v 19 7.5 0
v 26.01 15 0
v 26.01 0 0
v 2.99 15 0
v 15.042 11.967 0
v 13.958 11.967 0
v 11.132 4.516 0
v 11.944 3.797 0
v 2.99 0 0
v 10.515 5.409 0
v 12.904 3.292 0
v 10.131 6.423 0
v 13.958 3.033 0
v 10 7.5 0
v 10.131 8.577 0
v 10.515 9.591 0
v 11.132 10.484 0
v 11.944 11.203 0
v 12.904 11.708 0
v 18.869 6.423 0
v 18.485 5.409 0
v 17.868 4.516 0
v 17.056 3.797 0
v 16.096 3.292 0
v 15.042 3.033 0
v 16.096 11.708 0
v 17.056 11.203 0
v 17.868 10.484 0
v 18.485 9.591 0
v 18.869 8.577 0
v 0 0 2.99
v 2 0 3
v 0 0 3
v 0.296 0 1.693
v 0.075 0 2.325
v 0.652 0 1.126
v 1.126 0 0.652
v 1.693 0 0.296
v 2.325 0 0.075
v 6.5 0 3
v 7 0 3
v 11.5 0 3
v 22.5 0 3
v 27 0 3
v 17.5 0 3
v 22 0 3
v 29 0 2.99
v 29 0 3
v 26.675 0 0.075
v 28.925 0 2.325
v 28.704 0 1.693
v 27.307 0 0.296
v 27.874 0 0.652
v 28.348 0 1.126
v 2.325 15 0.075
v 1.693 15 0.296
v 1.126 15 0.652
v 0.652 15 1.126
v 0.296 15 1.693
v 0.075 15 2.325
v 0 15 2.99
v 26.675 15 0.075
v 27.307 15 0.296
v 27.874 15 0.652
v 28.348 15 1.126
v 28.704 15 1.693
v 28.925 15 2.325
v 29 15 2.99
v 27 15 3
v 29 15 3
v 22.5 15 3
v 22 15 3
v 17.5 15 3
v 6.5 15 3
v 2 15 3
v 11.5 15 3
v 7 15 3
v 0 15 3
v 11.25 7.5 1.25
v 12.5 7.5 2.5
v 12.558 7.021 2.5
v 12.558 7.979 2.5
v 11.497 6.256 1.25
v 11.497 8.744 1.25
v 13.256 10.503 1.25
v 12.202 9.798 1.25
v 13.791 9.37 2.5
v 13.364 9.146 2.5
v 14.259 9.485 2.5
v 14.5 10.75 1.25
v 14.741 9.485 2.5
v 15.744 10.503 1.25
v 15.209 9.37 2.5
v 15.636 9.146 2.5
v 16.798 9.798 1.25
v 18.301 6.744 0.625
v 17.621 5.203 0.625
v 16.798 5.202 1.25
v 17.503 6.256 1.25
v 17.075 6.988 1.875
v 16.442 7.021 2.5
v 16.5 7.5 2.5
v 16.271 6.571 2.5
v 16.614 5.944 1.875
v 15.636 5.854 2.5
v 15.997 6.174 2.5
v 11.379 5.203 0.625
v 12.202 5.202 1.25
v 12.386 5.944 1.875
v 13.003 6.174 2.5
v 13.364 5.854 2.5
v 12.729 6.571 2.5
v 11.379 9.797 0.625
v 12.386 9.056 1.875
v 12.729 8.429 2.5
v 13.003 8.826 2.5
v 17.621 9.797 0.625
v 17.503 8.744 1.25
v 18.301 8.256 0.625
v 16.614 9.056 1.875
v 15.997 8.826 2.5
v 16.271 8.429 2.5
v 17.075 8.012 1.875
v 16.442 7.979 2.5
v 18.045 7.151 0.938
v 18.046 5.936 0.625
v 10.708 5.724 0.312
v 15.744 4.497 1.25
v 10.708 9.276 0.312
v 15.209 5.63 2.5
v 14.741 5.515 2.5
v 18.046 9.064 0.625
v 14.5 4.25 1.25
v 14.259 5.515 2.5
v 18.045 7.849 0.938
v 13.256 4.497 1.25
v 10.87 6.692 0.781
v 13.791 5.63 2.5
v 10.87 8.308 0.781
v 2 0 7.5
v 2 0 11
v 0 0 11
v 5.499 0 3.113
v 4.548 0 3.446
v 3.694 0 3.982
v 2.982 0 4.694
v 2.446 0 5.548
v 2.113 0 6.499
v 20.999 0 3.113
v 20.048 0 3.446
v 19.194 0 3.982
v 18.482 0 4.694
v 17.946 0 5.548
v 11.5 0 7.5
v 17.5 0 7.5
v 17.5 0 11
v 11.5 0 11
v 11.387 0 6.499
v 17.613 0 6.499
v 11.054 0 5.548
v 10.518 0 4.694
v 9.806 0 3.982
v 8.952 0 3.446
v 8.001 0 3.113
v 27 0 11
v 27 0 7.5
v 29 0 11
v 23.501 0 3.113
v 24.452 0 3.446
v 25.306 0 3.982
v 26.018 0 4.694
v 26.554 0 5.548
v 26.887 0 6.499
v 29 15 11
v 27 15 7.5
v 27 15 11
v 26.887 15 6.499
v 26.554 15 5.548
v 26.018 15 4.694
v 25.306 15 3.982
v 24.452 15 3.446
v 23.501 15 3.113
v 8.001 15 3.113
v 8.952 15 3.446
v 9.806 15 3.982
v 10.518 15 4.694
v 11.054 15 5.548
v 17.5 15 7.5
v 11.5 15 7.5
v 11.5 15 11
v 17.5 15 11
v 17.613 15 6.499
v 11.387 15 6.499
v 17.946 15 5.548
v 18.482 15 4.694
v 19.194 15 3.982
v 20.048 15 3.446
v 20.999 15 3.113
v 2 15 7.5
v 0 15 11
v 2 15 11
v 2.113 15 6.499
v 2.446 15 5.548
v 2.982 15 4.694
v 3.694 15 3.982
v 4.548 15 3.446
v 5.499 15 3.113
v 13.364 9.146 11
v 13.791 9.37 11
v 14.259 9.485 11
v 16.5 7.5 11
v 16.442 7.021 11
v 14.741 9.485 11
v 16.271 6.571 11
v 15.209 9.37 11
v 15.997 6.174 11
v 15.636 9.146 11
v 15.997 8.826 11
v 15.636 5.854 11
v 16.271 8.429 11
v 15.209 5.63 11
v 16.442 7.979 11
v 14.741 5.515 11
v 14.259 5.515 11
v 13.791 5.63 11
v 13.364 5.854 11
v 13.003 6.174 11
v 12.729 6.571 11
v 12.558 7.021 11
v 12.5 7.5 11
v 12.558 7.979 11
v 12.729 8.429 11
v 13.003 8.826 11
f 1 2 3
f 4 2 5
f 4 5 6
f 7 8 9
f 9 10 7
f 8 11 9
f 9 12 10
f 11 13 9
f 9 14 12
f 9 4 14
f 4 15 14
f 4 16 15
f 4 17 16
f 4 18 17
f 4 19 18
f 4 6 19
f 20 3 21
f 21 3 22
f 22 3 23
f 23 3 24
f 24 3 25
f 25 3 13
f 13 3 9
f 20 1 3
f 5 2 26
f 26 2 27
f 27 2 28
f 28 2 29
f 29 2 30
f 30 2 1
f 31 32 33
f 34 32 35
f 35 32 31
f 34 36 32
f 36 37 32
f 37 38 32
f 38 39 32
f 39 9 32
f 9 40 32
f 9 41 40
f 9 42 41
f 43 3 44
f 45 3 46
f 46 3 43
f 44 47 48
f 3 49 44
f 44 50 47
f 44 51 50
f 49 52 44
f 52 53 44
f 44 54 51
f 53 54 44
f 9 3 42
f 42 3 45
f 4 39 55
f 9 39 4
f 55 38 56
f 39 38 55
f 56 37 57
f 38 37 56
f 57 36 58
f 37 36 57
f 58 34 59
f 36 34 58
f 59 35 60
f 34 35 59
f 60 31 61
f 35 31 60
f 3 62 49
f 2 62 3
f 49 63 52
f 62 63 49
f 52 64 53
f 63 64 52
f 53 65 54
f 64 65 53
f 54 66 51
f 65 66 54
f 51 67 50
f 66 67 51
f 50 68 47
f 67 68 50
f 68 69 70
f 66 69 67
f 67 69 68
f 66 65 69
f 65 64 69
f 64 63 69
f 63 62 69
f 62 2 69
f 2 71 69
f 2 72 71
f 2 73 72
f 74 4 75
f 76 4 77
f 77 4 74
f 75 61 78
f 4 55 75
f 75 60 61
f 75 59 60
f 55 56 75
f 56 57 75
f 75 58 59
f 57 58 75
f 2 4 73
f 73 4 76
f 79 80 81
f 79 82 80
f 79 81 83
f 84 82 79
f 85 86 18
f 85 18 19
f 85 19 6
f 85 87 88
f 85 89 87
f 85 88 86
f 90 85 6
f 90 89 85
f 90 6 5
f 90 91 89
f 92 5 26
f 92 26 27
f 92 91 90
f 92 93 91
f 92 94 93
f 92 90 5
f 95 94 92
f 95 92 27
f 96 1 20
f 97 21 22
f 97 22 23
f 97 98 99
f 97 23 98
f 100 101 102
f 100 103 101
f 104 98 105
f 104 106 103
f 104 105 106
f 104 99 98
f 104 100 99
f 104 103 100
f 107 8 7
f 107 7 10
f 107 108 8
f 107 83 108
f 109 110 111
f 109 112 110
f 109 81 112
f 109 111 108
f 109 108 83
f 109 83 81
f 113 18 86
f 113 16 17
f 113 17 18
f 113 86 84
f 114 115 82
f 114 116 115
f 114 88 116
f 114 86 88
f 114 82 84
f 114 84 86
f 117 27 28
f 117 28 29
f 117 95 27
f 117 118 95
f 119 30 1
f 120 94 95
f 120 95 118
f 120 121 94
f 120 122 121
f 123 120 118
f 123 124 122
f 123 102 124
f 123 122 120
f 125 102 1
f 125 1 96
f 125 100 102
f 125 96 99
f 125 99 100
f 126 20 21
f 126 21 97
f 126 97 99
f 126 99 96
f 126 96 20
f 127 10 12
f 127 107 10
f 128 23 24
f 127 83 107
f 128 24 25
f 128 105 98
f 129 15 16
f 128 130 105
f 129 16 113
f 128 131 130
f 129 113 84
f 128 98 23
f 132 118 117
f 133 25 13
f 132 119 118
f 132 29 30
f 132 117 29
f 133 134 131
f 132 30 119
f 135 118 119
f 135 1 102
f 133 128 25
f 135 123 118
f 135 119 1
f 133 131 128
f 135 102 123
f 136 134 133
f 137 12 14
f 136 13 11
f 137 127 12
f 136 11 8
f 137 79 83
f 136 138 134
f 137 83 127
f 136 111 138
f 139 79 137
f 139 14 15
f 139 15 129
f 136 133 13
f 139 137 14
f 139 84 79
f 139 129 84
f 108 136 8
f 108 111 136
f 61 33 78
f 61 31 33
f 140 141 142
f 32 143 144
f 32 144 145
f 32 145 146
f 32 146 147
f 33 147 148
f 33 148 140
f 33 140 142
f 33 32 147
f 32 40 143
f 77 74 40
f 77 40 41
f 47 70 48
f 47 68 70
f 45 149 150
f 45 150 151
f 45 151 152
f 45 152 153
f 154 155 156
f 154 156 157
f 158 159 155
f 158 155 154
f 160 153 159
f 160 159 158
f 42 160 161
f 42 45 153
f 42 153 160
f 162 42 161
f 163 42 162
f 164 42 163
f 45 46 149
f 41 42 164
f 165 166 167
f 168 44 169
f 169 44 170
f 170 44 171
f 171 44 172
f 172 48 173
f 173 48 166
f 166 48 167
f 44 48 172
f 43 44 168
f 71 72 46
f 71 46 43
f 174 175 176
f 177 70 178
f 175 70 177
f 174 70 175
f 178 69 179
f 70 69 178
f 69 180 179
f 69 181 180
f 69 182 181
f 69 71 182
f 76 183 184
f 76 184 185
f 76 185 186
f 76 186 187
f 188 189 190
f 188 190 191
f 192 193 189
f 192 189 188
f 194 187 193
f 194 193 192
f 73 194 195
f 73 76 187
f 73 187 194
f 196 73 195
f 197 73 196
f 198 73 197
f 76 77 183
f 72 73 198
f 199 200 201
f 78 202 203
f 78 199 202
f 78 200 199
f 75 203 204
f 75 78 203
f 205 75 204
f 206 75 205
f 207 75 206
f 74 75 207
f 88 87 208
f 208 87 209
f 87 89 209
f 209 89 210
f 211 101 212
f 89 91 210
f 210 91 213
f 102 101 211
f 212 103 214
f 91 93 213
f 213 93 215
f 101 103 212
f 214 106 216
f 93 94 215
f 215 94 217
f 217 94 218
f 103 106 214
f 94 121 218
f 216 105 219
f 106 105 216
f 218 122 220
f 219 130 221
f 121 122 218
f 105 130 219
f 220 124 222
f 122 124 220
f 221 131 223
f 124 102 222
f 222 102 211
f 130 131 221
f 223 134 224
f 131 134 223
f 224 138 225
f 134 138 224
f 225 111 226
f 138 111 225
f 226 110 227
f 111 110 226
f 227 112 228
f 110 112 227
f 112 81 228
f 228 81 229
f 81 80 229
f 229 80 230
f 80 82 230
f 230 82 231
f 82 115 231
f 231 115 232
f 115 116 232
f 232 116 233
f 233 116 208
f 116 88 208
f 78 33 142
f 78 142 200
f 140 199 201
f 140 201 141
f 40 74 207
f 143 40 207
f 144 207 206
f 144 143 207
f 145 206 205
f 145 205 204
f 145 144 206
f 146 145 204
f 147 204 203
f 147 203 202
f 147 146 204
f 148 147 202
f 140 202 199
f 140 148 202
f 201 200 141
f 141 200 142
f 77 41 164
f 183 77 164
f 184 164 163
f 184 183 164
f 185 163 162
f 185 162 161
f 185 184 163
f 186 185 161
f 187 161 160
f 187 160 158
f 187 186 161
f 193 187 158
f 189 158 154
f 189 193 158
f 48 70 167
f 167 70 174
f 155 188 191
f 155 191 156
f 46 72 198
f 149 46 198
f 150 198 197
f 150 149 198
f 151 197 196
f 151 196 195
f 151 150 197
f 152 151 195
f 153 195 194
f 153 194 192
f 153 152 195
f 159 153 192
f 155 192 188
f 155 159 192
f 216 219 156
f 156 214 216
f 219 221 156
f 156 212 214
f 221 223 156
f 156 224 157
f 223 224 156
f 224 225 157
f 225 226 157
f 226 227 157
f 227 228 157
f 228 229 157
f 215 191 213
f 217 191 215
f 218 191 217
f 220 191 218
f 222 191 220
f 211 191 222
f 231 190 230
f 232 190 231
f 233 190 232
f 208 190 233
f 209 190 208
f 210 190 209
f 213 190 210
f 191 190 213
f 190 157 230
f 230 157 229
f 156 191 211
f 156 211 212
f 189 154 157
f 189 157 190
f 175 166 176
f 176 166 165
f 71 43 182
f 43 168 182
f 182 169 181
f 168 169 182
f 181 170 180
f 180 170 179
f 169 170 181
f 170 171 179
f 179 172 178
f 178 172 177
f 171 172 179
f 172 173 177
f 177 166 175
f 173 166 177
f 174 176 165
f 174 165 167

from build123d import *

# Parameters (mm, degrees)
SKETCH_W      = 29
SKETCH_H      = 15
PAD_DEPTH     = 3
SKETCH001_W   = 2
SKETCH001_H   = 15
SKETCH001_W_2 = 6
PAD001_DEPTH  = 8
FILLET_R      = 4.5
SKETCH002_R   = 2
POCKET_DEPTH  = 11.001
CHAMFER_SIZE  = 2.5
FILLET001_R   = 2.99


with BuildPart() as part:
    # Sketch → Pad (new body)
    with BuildSketch(Plane.XY):
        with Locations((14.5, 7.5)):
            Rectangle(SKETCH_W, SKETCH_H)
    extrude(amount=PAD_DEPTH)

    # Sketch001 (on Face6 of Pad) → Pad001 (join)
    with BuildSketch(Plane.XY.offset(3)):
        with Locations((1, 7.5)):
            Rectangle(SKETCH001_W, SKETCH001_H)
        with Locations((14.5, 7.5)):
            Rectangle(SKETCH001_W_2, SKETCH001_H)
        with Locations((28, 7.5)):
            Rectangle(SKETCH001_W, SKETCH001_H)
    extrude(amount=PAD001_DEPTH)

    # Fillet
    fillet_edges = [part.edges().sort_by_distance(p)[0] for p in [
        (2, 7.5, 3),
        (11.5, 7.5, 3),
        (17.5, 7.5, 3),
        (27, 7.5, 3),
    ]]
    fillet(fillet_edges, radius=FILLET_R)

    # Sketch002 (on Face6 of Fillet) → Pocket (cut, through all)
    with BuildSketch(Plane(origin=(0, 0, 0), x_dir=(1, 0, 0), z_dir=(0, 0, -1))):
        with Locations((14.5, -7.5)):
            Circle(SKETCH002_R)
    extrude(amount=-POCKET_DEPTH, mode=Mode.SUBTRACT)

    # Chamfer
    chamfer_edges = [part.edges().sort_by_distance(p)[0] for p in [
        (12.5, 7.5, 0),
    ]]
    chamfer(chamfer_edges, length=CHAMFER_SIZE)

    # Fillet001
    fillet001_edges = [part.edges().sort_by_distance(p)[0] for p in [
        (0, 7.5, 0),
        (29, 7.5, 0),
    ]]
    fillet(fillet001_edges, radius=FILLET001_R)


solid = part.part
